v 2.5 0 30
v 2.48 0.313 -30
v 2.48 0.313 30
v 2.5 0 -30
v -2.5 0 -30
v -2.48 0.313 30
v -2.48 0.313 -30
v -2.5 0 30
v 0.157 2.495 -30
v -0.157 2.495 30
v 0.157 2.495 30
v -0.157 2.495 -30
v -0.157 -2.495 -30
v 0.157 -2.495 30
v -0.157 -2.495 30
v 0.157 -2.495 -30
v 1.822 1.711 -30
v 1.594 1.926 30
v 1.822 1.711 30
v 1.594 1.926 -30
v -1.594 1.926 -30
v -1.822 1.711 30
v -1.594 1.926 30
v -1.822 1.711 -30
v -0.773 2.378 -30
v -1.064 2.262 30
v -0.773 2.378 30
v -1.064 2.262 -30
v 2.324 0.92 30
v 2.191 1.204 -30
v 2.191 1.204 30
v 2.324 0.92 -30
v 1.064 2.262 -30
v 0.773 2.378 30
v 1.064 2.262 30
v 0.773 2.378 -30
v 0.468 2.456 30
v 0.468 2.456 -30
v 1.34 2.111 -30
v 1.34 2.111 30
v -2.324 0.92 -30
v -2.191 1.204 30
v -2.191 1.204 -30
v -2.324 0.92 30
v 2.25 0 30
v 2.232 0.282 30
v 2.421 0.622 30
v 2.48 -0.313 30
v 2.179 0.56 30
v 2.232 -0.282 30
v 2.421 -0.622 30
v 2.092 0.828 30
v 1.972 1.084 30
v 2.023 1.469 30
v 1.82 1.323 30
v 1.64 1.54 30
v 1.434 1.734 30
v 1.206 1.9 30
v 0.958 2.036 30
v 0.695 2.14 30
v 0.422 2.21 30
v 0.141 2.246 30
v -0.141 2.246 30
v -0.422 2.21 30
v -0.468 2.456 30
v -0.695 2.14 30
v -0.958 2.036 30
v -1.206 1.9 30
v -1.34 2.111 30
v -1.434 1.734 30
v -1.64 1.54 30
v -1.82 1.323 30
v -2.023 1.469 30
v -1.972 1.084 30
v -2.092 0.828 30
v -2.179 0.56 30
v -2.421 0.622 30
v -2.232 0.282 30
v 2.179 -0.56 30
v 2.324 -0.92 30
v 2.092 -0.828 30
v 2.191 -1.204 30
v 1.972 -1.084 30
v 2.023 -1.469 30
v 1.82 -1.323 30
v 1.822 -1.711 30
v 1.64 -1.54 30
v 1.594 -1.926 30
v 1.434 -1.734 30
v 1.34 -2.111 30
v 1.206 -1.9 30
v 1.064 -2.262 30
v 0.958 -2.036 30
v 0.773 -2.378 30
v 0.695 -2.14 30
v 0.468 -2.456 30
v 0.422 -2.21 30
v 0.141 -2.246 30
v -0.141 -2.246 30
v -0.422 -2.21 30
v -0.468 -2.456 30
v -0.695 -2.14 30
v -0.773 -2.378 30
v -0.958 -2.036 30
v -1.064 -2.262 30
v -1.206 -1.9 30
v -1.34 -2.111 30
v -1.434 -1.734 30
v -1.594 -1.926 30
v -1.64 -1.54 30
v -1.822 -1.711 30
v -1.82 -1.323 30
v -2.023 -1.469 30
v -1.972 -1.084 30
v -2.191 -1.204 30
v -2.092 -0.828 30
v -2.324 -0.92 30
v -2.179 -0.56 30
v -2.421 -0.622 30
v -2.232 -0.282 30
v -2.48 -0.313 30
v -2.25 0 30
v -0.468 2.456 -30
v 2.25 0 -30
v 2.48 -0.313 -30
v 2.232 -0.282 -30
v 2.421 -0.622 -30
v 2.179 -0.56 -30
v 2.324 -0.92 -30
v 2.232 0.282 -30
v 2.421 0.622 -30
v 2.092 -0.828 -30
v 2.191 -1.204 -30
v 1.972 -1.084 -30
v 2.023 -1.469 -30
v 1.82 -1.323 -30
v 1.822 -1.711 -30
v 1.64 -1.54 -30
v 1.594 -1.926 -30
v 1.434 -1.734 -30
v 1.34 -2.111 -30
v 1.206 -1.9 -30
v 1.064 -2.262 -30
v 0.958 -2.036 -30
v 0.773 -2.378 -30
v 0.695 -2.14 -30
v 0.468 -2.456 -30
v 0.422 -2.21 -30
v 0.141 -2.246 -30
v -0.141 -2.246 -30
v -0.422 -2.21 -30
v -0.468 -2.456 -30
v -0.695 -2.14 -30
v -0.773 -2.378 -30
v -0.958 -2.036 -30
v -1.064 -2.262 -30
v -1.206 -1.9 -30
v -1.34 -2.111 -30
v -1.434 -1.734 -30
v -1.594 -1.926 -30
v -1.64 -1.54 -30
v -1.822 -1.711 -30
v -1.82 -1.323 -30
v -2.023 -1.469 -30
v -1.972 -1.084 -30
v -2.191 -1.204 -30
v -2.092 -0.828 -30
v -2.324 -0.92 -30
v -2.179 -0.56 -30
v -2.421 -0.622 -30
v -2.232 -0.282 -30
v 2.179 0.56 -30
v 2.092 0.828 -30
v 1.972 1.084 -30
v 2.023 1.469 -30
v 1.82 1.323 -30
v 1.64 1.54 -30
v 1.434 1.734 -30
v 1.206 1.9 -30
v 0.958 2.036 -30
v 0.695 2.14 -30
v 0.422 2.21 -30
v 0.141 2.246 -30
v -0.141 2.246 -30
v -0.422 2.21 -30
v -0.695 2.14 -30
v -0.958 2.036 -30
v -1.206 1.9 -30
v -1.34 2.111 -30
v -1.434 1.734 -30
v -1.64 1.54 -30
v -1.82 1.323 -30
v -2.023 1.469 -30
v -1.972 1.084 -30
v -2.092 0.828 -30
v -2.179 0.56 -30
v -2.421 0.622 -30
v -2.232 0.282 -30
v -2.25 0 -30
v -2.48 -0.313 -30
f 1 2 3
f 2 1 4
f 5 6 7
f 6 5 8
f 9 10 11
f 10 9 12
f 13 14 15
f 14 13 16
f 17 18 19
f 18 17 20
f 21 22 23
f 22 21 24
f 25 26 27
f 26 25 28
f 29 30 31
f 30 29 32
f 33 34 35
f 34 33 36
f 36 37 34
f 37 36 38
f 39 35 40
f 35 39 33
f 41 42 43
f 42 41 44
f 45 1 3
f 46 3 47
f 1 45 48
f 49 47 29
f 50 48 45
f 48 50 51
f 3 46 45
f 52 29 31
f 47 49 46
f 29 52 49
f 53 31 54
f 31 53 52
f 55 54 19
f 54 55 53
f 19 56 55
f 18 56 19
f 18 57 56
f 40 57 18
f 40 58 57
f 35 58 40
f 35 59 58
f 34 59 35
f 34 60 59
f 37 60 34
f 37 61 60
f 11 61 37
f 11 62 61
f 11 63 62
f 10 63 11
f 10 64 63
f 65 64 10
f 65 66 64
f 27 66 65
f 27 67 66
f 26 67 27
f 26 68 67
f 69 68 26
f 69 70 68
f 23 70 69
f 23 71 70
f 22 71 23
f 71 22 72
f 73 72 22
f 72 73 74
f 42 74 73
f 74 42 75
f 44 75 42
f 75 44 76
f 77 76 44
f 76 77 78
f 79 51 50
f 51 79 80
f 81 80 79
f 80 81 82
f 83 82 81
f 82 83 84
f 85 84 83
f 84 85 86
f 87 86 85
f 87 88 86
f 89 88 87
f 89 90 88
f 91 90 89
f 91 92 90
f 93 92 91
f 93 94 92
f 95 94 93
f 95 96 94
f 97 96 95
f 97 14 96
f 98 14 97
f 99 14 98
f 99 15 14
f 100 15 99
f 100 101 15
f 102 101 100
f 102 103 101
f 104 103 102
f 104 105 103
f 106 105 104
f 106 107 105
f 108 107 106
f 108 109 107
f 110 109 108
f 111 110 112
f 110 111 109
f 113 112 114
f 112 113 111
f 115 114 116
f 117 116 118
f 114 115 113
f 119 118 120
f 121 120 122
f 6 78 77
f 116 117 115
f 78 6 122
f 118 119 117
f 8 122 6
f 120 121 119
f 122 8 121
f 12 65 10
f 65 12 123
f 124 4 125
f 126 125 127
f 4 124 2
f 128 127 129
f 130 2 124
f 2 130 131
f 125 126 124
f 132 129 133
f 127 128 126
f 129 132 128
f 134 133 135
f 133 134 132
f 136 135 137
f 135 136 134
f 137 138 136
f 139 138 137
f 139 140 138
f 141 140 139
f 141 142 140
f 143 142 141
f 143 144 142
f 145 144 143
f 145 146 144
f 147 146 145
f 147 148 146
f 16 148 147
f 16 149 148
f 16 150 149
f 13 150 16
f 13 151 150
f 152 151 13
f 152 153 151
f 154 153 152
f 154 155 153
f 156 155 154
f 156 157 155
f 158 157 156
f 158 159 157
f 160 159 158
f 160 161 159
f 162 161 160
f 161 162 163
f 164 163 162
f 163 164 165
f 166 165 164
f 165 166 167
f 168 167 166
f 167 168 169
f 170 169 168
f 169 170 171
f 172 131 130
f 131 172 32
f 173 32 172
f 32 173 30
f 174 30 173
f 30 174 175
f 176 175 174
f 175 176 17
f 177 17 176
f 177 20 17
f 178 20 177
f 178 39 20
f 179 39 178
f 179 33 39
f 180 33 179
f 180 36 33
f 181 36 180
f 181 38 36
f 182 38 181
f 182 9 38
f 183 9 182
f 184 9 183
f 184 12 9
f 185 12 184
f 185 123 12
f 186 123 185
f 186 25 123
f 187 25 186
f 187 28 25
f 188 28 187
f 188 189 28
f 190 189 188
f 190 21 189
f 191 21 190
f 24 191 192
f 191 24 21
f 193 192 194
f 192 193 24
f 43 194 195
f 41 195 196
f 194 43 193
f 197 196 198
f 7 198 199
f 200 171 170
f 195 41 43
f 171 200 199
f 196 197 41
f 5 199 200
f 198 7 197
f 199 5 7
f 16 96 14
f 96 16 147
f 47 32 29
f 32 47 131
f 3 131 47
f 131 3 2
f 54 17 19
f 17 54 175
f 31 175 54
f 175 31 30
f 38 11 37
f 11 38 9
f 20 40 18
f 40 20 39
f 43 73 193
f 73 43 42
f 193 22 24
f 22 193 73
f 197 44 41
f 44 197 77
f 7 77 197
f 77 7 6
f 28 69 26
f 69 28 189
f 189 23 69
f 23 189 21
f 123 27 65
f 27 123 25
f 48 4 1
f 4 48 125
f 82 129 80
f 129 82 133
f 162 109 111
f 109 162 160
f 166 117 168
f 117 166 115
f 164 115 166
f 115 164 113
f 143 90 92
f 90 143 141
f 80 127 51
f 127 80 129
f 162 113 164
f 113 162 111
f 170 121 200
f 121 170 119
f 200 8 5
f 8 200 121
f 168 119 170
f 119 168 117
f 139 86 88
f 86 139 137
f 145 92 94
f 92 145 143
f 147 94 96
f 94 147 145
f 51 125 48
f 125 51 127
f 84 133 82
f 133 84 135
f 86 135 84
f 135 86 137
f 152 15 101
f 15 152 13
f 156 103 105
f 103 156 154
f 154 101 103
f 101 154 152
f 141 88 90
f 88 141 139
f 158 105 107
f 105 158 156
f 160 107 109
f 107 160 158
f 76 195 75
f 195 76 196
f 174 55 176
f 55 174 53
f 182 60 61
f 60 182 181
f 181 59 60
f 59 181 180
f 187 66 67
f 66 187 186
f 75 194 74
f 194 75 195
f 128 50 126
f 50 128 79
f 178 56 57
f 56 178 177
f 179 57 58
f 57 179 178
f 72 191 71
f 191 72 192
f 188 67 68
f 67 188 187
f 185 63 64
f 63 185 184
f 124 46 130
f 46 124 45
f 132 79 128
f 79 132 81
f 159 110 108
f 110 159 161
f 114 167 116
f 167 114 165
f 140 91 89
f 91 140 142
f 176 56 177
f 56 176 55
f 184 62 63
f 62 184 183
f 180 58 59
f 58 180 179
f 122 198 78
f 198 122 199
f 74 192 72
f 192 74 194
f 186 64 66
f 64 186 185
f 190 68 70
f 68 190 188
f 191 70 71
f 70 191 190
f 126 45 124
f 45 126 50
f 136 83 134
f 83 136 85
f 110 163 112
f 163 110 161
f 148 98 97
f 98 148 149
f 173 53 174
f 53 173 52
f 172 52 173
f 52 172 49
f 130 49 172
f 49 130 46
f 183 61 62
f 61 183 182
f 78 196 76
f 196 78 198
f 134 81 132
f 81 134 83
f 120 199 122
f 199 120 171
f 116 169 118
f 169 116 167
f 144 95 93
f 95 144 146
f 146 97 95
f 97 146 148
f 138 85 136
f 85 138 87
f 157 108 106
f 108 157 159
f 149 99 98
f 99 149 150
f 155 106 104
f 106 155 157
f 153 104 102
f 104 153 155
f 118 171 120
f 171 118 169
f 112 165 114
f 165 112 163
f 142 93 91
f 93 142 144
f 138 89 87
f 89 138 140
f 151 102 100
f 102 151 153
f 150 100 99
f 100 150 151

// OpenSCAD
$fn = 50;


difference() {
	union() {
		translate(v = [0, 0, -30.0000000000]) {
			cylinder(h = 60, r = 2.5000000000);
		}
	}
	union() {
		translate(v = [0, 0, -100.0000000000]) {
			cylinder(h = 200, r = 2.2500000000);
		}
	}
}
